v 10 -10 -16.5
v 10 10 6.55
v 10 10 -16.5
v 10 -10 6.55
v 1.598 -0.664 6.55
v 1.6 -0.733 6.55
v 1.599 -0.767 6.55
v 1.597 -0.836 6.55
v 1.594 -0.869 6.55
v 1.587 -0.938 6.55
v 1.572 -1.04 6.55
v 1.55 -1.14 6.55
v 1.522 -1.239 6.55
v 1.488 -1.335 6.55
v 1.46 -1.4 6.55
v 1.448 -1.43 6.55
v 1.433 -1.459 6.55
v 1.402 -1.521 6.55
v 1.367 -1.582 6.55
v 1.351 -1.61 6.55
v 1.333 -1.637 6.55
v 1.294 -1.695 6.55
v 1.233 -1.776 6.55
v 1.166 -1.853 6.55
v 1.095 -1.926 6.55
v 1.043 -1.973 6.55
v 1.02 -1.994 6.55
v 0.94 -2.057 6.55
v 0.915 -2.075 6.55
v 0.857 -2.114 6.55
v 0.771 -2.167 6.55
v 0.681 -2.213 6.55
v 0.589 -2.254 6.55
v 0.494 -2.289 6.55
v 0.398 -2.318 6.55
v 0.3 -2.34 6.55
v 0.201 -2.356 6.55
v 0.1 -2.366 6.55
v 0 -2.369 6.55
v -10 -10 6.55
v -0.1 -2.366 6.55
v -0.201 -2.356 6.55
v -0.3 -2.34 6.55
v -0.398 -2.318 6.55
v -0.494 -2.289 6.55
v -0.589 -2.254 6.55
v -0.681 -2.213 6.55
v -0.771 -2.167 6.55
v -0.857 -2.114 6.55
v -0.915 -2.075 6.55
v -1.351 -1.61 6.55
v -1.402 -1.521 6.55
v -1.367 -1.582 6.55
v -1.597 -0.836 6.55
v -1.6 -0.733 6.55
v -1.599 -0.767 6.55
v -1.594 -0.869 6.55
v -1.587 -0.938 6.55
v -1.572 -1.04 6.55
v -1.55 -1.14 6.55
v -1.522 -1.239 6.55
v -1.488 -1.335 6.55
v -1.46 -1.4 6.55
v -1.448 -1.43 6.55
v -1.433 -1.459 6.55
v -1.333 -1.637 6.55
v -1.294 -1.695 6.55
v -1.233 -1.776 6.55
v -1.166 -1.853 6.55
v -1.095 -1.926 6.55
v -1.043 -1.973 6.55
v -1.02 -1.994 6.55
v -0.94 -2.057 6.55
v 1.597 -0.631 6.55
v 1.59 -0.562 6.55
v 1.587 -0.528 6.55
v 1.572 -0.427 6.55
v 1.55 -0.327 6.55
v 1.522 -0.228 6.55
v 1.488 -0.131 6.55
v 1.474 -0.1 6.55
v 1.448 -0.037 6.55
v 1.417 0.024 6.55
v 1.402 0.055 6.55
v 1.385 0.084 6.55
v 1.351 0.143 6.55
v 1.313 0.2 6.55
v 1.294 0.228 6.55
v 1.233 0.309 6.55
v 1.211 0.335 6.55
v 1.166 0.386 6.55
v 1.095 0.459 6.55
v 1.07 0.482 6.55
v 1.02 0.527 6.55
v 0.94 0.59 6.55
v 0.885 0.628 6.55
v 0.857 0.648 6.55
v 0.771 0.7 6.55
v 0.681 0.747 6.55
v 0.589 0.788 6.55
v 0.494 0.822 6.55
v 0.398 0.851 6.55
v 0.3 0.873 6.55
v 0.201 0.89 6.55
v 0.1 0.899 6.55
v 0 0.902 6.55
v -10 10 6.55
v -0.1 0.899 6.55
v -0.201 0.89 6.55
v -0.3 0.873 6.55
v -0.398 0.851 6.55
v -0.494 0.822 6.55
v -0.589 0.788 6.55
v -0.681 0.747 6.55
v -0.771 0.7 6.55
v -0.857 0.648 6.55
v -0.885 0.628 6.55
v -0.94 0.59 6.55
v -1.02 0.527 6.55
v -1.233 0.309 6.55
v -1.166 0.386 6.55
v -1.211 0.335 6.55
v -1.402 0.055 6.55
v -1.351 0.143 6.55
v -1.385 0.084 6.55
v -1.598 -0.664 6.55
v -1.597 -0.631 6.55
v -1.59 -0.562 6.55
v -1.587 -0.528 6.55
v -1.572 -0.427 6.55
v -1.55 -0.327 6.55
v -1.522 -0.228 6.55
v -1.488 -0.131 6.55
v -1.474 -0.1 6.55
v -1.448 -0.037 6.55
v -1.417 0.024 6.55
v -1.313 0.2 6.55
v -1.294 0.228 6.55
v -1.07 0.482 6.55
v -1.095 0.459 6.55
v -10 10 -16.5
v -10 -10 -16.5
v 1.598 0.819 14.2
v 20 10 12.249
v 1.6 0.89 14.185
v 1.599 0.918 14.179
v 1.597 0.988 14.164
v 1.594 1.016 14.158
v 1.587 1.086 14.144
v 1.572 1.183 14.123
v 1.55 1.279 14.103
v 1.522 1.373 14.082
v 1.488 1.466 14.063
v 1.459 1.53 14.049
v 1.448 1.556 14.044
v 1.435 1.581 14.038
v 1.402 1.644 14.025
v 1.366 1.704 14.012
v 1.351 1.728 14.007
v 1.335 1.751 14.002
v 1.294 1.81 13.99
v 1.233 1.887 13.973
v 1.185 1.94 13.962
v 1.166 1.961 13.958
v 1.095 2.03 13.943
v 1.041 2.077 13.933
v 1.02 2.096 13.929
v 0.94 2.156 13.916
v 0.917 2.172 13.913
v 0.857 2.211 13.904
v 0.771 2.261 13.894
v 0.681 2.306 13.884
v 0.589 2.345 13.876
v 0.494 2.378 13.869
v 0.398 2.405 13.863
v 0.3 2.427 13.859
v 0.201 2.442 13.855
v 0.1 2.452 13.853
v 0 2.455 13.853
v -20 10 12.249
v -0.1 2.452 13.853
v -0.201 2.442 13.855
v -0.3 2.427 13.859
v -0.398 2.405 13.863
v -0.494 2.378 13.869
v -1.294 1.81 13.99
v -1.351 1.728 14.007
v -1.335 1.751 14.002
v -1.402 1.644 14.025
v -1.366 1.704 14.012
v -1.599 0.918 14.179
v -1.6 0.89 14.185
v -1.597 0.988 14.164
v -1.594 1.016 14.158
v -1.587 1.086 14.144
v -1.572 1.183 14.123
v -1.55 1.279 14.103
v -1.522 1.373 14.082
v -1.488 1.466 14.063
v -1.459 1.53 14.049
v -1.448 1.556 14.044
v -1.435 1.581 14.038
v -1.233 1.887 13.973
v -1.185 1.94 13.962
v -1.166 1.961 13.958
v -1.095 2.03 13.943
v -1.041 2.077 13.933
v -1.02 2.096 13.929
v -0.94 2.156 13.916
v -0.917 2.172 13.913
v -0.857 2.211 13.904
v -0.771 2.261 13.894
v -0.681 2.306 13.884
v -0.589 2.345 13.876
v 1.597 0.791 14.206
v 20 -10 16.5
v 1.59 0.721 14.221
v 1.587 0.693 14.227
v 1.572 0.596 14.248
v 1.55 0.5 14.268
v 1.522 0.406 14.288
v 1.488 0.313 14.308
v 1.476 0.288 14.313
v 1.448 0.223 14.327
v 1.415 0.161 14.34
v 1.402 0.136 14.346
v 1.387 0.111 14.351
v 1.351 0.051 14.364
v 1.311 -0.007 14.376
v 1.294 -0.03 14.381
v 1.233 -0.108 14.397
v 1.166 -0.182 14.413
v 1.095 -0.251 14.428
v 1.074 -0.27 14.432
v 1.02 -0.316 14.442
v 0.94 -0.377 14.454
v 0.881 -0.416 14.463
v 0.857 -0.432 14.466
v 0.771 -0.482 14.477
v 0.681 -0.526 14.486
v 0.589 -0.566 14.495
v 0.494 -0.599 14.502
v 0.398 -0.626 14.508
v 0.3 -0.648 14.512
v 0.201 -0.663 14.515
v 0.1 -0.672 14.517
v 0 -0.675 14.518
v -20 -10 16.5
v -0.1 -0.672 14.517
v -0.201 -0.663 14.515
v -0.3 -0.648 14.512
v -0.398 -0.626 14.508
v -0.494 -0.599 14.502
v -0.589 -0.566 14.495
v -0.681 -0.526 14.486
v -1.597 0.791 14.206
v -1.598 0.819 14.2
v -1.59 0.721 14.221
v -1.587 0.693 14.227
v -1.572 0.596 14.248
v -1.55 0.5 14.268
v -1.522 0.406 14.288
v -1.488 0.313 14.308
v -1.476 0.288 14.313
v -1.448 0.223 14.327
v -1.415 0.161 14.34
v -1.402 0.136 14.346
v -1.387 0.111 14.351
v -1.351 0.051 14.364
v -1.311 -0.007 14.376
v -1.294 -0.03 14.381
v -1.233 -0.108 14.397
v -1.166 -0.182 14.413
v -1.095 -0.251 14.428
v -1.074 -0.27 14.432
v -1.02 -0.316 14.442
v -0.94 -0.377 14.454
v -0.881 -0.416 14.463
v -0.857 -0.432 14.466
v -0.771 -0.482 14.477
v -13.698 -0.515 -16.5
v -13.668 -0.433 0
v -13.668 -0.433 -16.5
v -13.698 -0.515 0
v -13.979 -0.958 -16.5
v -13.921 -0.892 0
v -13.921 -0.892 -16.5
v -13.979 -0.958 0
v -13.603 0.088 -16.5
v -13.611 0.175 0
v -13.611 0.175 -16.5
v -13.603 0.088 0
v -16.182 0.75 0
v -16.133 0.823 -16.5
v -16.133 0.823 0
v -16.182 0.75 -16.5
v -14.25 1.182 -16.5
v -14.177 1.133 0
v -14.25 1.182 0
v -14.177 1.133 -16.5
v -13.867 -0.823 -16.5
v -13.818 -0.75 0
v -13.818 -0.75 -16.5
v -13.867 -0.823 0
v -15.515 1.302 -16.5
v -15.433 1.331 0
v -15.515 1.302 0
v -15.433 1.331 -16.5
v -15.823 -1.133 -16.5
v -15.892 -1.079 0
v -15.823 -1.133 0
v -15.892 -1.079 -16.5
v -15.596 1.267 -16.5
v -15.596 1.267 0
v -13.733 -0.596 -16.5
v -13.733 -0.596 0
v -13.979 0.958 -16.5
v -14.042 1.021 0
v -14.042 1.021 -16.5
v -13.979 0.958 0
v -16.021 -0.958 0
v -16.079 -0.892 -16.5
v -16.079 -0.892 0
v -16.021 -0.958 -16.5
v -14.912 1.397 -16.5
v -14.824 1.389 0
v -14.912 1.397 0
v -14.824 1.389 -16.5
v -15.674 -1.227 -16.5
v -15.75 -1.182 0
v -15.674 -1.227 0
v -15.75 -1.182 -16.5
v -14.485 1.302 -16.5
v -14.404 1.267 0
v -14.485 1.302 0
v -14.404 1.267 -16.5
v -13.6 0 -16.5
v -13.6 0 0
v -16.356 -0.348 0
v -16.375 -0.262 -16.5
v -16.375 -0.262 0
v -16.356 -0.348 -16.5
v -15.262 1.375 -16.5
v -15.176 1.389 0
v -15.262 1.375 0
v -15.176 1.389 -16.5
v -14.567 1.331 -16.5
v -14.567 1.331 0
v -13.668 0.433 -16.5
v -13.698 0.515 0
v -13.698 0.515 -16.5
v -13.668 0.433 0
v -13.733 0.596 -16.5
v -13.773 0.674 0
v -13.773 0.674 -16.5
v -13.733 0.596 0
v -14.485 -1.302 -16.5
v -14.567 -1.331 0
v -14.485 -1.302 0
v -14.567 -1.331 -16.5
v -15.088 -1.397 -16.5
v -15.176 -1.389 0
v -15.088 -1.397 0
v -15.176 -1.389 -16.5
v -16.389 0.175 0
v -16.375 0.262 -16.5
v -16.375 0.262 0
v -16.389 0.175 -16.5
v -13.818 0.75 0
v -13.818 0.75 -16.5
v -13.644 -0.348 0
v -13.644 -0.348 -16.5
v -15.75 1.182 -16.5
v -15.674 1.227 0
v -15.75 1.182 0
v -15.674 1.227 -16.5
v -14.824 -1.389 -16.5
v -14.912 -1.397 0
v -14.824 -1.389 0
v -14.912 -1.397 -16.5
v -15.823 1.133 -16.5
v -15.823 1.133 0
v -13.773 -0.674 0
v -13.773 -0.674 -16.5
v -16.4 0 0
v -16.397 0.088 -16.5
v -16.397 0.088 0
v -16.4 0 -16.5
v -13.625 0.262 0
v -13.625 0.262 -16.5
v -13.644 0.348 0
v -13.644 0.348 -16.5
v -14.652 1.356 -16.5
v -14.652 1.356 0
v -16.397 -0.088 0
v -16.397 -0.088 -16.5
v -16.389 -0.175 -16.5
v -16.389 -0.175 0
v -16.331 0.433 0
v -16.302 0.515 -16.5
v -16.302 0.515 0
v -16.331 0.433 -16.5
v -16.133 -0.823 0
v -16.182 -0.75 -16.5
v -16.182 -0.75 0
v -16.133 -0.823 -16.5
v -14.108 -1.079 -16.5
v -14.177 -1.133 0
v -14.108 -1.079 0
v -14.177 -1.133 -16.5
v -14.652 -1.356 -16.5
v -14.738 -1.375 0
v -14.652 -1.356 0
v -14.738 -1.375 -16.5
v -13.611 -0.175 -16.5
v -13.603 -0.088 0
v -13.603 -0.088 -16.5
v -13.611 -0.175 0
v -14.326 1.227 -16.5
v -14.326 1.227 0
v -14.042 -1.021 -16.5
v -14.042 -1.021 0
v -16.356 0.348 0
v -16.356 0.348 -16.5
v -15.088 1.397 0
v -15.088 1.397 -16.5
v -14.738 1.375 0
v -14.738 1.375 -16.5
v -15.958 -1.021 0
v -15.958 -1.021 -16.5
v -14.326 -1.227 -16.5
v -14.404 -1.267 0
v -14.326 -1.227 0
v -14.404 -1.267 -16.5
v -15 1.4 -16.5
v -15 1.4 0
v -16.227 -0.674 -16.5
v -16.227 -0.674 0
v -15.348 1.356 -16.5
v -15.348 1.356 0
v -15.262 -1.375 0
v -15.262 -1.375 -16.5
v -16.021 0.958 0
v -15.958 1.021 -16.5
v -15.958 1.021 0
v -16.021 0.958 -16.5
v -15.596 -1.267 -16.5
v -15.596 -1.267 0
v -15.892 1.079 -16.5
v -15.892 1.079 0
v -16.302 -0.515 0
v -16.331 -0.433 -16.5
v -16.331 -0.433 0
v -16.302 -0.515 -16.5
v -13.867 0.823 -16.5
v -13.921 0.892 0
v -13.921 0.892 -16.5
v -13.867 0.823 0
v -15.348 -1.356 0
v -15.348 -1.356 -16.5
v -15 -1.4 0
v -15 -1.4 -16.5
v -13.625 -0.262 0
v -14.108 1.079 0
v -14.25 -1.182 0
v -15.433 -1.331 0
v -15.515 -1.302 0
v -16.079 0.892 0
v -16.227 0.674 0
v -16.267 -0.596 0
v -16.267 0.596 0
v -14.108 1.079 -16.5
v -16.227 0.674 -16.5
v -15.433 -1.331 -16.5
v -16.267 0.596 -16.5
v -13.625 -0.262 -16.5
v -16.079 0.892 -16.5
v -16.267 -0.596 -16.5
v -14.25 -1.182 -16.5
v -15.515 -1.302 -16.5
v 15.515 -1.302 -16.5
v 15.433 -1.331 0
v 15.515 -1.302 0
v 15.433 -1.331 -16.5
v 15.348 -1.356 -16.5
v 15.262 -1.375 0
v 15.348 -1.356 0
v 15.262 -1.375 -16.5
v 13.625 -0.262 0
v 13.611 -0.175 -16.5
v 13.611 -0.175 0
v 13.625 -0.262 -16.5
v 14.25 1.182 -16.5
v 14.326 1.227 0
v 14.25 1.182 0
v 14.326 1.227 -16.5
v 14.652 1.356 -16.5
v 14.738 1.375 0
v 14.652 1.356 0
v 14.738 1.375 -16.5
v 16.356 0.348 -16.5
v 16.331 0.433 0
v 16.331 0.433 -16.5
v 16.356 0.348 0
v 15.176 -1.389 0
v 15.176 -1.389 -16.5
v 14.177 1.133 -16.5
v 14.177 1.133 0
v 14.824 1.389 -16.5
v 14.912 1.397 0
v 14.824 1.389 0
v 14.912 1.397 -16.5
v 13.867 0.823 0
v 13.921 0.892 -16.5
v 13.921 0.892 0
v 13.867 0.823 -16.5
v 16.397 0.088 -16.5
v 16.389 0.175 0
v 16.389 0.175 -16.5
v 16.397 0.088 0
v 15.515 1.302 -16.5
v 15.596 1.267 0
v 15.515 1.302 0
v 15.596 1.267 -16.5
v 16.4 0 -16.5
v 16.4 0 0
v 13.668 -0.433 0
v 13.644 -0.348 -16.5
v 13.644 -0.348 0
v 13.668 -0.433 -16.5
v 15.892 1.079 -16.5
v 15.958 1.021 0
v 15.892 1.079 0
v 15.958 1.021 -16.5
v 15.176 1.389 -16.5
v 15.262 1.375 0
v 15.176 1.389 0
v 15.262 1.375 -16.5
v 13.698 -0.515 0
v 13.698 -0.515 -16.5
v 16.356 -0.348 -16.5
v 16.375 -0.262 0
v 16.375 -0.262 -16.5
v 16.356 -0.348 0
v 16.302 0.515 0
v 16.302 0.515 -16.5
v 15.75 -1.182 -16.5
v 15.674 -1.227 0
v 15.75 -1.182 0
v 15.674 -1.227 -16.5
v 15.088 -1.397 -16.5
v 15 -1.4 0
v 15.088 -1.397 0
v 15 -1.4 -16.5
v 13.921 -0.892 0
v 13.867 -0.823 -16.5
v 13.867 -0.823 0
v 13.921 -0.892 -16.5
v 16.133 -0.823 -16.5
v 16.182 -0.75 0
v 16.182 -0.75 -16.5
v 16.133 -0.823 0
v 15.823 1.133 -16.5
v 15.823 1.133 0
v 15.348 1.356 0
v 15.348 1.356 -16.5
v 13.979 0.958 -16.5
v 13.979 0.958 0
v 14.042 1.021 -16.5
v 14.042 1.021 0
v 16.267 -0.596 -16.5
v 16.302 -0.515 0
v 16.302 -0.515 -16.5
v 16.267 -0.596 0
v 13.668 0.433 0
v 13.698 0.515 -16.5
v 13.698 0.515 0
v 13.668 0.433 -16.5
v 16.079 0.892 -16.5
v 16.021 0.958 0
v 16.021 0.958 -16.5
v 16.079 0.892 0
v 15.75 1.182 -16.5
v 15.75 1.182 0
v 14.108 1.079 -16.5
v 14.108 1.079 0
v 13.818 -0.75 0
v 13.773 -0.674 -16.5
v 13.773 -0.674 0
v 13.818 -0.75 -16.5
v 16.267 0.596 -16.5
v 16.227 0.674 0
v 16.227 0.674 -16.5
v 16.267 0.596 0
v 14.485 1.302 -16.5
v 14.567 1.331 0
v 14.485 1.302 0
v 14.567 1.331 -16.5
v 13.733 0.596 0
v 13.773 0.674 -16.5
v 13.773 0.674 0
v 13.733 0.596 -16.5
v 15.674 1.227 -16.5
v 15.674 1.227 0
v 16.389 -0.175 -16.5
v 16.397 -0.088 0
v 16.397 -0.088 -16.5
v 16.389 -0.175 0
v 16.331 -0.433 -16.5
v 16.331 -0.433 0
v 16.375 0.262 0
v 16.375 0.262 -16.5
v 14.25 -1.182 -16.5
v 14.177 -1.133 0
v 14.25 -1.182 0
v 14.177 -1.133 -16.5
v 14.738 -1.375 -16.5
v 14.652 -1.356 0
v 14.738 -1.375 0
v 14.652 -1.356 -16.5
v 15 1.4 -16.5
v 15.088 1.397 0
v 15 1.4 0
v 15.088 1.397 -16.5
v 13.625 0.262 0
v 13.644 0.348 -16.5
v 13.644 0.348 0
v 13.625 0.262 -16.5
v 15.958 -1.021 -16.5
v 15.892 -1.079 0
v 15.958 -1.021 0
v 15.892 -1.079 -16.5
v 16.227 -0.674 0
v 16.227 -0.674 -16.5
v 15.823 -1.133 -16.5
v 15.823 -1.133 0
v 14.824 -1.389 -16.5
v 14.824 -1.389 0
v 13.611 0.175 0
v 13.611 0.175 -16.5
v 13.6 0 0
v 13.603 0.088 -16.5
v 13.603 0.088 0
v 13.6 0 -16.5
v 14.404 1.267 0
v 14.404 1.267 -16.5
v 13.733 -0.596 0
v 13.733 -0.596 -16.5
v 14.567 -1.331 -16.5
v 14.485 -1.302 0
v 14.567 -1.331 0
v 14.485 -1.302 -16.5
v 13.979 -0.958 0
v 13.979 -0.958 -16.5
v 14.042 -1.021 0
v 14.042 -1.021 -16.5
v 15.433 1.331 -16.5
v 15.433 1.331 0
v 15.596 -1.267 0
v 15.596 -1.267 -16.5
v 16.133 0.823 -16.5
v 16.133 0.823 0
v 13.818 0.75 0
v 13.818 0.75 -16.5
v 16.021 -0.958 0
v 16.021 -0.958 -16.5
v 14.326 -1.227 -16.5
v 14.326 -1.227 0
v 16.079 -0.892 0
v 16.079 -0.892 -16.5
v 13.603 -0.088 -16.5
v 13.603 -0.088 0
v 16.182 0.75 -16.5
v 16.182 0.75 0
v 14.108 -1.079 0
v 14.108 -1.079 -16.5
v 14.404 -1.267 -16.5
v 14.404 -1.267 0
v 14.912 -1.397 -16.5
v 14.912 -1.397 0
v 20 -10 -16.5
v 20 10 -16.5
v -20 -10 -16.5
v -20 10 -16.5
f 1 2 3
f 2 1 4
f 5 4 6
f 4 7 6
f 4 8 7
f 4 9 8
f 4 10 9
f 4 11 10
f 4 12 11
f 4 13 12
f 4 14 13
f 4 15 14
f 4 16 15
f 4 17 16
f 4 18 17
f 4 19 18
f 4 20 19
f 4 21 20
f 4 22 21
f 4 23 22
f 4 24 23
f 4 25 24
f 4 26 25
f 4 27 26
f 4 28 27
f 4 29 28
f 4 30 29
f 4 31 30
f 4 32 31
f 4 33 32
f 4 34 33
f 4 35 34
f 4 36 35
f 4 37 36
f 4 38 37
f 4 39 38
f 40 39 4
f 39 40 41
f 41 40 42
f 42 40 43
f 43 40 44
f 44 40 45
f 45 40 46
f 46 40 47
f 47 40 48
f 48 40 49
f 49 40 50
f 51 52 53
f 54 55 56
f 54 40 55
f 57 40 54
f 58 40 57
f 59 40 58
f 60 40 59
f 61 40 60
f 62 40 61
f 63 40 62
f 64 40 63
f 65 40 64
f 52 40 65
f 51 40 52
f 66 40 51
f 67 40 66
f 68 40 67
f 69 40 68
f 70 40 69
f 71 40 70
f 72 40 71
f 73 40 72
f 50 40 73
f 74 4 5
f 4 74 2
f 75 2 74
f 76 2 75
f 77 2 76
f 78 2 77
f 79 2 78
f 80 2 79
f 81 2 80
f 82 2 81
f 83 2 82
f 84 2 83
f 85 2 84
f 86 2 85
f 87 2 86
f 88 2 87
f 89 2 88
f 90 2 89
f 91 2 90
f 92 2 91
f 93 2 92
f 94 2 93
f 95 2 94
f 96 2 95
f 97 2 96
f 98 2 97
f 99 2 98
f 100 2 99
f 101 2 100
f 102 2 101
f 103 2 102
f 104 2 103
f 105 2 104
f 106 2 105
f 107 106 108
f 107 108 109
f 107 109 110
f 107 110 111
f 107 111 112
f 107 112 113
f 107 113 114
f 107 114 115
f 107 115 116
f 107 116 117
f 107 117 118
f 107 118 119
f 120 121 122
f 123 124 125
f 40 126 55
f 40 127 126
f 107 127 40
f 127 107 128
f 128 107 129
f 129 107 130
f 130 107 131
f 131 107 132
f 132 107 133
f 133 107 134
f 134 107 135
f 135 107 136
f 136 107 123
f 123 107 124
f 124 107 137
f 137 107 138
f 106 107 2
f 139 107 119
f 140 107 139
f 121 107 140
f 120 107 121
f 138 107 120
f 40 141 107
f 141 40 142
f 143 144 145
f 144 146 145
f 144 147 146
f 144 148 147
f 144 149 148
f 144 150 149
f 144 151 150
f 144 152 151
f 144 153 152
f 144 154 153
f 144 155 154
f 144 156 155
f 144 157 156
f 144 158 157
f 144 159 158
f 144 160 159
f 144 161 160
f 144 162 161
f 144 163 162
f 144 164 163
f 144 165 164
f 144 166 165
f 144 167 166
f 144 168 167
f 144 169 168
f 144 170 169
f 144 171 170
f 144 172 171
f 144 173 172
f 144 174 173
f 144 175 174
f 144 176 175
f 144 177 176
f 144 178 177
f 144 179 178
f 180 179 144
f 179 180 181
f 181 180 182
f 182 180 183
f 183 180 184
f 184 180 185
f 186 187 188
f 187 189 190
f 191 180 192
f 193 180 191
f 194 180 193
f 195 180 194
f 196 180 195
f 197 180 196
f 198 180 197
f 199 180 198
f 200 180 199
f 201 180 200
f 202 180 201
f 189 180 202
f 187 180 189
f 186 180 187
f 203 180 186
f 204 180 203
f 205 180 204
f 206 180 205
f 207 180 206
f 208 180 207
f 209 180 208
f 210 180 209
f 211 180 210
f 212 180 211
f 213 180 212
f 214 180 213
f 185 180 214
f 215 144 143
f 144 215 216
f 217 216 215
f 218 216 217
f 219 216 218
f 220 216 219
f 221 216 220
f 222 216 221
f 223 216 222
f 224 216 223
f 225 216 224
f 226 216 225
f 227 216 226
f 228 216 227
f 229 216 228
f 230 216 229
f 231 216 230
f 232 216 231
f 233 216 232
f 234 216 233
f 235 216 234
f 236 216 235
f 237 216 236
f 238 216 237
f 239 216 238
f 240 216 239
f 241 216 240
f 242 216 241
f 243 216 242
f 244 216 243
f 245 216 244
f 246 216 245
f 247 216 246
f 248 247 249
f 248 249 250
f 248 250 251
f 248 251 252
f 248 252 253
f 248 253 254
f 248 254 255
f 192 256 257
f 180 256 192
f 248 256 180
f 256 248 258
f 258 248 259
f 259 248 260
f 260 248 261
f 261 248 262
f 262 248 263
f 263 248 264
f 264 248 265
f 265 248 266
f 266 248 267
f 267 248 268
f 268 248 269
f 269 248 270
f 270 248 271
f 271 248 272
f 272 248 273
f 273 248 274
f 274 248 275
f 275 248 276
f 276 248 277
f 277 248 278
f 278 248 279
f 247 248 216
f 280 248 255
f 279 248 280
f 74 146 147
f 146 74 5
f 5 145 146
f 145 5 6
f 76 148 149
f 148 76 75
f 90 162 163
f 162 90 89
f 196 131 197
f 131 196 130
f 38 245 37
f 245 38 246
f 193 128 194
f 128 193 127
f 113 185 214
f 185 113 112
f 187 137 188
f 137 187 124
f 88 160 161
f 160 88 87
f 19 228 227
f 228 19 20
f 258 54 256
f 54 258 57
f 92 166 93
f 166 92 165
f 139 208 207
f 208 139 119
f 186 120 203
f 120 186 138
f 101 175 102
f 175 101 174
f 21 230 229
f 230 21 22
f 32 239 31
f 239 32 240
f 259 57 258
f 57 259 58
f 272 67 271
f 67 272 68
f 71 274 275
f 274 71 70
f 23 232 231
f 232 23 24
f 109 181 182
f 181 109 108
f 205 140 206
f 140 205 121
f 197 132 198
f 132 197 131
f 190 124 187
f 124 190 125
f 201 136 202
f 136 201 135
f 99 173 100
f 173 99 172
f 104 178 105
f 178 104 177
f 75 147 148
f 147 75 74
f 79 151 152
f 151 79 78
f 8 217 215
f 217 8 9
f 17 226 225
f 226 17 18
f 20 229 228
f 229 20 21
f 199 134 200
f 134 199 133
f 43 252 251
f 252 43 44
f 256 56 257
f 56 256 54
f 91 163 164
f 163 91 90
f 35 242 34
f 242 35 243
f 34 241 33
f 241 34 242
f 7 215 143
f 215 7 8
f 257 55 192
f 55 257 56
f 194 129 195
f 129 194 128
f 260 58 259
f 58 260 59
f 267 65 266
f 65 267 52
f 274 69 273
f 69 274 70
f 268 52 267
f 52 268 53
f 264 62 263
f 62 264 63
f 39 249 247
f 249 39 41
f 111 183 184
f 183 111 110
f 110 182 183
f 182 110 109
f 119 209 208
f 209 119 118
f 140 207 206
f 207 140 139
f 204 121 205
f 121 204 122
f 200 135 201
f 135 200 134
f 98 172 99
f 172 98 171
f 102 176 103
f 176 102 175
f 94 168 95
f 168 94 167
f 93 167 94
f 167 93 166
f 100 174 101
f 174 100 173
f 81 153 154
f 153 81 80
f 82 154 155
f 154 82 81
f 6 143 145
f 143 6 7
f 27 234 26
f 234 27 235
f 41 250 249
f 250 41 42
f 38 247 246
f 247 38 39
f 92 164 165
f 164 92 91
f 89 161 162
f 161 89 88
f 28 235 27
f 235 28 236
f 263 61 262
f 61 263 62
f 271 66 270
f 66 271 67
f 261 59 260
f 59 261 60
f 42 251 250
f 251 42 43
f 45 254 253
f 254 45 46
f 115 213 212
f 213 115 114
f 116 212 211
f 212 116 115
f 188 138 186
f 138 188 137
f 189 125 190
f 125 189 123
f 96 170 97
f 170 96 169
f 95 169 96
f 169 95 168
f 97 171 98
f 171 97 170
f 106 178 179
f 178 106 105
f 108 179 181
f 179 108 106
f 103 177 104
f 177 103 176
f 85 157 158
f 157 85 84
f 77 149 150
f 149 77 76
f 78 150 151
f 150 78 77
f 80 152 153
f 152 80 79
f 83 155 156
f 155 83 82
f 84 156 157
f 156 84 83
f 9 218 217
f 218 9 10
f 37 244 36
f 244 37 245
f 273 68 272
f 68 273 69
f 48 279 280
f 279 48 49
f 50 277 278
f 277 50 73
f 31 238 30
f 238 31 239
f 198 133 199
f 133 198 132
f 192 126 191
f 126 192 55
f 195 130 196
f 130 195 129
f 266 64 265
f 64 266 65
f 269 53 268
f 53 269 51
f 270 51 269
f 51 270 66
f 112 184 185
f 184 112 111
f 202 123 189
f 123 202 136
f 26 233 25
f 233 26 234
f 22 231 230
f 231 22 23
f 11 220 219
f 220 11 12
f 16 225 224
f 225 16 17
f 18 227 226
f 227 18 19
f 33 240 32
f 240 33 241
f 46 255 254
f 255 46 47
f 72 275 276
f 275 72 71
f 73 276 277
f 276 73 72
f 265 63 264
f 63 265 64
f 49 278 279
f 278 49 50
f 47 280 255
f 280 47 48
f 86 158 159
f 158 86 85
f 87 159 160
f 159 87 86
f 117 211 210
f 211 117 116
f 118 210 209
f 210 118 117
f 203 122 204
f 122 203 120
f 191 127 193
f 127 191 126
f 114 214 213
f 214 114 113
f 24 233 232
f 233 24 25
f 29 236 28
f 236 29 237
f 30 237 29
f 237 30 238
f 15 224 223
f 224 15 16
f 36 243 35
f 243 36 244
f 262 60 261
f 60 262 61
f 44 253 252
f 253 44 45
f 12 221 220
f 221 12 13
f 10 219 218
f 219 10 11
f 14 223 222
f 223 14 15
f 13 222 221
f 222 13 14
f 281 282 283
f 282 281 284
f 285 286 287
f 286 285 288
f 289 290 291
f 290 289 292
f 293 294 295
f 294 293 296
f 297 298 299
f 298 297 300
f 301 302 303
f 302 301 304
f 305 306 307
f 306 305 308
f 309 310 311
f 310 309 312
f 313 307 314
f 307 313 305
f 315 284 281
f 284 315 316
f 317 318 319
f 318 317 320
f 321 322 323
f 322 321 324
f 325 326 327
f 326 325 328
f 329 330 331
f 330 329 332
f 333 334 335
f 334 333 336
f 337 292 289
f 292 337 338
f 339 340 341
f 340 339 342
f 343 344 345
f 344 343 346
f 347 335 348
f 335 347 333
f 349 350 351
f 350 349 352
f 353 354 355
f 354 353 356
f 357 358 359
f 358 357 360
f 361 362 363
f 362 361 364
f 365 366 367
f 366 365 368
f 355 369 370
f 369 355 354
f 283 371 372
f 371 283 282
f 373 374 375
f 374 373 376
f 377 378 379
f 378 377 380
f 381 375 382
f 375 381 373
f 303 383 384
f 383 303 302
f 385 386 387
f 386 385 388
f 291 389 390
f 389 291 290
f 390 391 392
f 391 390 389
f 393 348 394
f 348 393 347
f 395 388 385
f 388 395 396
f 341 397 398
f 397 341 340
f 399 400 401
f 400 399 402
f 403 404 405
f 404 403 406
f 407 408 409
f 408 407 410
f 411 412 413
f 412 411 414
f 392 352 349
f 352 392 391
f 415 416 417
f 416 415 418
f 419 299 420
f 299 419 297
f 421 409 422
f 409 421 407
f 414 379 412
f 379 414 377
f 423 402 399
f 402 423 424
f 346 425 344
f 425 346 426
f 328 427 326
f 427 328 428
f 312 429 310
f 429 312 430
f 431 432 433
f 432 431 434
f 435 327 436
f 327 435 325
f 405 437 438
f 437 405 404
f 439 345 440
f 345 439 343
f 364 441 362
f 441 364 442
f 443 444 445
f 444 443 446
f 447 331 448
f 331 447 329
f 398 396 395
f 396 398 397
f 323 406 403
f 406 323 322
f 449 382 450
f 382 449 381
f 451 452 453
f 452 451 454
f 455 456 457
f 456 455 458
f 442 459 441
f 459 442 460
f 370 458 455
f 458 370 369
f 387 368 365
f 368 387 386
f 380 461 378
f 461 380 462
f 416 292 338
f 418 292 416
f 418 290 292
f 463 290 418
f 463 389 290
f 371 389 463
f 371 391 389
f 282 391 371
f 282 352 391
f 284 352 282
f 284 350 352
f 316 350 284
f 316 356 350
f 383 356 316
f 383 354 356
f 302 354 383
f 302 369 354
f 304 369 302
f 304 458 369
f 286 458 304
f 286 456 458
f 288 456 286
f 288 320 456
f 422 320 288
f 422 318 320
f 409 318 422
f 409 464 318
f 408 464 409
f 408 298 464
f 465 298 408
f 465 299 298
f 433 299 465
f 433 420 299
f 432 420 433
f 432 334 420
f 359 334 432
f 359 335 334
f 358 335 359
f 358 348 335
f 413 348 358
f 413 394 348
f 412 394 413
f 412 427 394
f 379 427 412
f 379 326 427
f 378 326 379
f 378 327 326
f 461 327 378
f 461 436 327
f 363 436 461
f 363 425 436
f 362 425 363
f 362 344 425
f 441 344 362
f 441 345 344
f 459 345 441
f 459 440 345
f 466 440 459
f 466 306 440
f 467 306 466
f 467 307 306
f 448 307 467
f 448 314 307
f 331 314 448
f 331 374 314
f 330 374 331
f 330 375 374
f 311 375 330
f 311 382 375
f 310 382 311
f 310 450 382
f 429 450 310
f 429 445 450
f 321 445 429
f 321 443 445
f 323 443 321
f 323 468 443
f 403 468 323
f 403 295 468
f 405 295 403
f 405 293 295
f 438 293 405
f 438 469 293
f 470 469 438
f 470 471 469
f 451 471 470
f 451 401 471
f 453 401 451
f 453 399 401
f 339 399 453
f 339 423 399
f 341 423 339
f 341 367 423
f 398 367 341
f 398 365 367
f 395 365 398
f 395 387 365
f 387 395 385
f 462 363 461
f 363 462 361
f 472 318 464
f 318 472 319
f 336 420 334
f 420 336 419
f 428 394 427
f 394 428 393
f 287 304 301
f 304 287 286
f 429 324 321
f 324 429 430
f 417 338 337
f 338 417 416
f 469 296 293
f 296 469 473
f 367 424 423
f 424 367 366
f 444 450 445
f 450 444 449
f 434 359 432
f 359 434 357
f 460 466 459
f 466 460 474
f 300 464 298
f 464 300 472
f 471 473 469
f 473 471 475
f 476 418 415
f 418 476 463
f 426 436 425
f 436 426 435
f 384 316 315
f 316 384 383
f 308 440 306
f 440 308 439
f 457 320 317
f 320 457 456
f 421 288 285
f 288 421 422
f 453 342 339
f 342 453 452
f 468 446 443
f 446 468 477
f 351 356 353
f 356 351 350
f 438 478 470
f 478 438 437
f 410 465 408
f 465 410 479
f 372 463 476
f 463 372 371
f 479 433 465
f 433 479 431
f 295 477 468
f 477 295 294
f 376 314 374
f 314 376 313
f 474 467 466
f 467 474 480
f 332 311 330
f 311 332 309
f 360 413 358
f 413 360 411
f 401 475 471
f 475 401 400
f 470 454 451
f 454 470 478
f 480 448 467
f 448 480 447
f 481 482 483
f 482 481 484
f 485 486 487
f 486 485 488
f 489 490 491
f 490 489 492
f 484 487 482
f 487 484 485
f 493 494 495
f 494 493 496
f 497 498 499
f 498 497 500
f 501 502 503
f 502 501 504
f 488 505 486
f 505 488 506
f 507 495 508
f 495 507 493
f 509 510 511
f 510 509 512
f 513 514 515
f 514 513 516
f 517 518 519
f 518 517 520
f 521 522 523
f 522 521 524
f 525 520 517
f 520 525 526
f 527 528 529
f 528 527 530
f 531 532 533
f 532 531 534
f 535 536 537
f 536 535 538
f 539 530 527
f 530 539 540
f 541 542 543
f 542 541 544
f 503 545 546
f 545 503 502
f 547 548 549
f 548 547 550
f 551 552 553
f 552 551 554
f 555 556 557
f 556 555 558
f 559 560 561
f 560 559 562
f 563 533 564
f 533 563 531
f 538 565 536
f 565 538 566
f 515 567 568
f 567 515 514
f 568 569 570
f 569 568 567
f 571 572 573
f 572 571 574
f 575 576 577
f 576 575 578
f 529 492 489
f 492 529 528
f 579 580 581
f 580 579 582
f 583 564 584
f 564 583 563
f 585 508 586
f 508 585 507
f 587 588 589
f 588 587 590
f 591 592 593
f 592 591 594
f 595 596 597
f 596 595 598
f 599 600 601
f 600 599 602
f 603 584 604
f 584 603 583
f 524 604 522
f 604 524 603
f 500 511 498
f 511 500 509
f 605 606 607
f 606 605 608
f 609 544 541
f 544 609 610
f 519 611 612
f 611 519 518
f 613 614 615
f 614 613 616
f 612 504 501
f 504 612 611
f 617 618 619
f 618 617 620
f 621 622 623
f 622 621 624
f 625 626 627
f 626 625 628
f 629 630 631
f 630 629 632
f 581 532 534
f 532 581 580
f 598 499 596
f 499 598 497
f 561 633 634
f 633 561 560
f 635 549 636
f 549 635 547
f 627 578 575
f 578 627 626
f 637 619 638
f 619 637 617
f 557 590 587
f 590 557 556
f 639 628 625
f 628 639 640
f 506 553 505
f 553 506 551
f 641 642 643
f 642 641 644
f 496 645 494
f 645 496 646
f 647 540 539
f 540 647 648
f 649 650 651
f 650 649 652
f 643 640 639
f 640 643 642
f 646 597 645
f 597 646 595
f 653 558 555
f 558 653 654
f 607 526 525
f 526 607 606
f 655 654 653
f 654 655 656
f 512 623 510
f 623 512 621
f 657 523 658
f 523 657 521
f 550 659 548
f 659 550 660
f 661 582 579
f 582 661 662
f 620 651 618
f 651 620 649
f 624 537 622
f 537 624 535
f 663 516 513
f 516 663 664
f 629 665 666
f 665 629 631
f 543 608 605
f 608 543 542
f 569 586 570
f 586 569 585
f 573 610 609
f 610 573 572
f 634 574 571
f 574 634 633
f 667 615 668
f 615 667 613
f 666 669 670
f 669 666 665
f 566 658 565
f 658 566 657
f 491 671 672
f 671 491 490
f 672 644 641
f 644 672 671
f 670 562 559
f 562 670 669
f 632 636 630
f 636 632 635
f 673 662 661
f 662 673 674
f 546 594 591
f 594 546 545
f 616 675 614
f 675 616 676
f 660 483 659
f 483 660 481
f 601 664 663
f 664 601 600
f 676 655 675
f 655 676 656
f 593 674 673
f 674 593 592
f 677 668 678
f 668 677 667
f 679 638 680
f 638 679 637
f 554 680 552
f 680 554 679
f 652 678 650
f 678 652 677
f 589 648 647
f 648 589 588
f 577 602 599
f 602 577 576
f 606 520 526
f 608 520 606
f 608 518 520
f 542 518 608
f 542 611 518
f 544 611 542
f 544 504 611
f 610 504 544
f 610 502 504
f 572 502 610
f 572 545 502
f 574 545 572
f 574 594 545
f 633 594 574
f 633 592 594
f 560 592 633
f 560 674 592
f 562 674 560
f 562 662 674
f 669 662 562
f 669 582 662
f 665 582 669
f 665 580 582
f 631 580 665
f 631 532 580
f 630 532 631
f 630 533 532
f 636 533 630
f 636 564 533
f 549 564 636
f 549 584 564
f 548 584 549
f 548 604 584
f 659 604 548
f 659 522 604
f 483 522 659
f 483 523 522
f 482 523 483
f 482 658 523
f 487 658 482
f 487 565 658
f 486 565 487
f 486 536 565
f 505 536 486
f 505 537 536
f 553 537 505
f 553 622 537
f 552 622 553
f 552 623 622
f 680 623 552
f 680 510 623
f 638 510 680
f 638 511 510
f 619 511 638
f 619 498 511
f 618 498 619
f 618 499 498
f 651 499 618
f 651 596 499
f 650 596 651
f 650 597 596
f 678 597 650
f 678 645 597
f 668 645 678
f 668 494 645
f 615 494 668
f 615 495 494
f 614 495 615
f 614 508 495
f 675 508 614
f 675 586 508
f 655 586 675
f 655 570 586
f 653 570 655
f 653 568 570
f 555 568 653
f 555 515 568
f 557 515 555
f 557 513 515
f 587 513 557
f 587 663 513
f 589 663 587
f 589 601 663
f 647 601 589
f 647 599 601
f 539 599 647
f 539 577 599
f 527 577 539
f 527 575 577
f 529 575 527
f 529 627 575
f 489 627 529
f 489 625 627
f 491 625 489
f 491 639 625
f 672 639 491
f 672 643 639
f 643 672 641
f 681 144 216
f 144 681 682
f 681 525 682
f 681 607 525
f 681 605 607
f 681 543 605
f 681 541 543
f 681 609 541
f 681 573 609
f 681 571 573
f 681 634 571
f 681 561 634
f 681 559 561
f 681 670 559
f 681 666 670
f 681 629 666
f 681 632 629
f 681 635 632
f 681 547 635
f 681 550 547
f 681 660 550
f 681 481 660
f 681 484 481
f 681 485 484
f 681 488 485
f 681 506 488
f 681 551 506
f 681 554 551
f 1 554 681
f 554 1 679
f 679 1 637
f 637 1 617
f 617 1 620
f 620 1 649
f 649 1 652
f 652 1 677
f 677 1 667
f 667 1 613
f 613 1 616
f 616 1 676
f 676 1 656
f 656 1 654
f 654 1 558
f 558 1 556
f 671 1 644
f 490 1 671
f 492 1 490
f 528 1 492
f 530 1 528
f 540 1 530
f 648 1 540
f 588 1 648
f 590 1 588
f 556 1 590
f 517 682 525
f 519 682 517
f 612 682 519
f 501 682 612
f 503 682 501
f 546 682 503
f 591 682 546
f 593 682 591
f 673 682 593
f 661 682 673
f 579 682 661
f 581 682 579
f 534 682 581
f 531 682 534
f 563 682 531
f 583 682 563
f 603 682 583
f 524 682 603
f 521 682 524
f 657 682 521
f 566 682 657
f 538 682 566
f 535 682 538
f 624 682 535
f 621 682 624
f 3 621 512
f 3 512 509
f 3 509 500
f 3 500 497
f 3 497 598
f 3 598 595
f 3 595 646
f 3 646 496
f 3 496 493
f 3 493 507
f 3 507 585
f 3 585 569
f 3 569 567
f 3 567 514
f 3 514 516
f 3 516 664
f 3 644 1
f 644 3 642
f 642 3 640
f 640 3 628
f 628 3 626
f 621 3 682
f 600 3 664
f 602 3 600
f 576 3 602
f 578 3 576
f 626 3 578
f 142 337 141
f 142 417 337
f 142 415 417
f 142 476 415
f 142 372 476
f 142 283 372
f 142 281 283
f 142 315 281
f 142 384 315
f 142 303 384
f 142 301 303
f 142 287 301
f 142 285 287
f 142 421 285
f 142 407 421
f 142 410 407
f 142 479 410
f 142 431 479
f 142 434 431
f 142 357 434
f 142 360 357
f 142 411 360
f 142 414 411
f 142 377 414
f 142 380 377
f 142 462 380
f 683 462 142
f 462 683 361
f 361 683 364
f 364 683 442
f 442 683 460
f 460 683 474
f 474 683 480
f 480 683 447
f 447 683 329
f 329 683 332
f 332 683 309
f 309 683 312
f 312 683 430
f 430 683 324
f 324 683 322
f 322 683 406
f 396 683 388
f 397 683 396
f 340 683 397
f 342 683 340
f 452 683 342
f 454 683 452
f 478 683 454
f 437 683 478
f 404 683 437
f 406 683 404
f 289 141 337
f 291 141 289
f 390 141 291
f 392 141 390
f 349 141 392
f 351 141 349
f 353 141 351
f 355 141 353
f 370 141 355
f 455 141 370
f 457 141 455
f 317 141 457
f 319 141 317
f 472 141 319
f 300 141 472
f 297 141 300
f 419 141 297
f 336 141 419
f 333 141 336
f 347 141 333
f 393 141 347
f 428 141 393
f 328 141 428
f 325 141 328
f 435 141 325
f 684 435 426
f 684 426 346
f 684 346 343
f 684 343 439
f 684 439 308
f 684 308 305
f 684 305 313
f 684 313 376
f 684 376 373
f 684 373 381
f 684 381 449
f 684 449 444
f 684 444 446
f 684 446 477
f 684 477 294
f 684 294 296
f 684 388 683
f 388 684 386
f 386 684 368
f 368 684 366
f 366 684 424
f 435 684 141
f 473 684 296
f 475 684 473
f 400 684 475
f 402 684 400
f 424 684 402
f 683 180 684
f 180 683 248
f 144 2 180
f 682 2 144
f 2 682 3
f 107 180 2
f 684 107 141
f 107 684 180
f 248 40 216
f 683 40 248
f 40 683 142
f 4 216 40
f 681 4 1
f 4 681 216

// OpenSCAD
// Support for keyboard
//

$fn=100;


module pre()
{
 cube([40, 20, 33], center=true);
}

module rem()
{
    translate([0, 0, -5])
    cube([20, 20+0.1, 33-10+0.1], center=true);
    
    translate([0, -20/2, 33/2])
    
    rotate([-12, 0,0])
    //translate([0, 20/2+30/2-20/2, 10/2+(33-10)/2+5])
    translate([0, 30/2, 10/2])
    cube([60, 30, 10], center=true);
    
    translate([0, 0, 10])
    rotate([-12, 0, 0])
    cylinder(d=3.2, h=20, center=true);
    
    translate([-15, 0, -10])
    cylinder(d=2.8, h=20, center=true);

    translate([ 15, 0, -10])
    cylinder(d=2.8, h=20, center=true);
    
}

module support()
{
    difference()
    {
        pre();
        rem();
    }
}


support();
